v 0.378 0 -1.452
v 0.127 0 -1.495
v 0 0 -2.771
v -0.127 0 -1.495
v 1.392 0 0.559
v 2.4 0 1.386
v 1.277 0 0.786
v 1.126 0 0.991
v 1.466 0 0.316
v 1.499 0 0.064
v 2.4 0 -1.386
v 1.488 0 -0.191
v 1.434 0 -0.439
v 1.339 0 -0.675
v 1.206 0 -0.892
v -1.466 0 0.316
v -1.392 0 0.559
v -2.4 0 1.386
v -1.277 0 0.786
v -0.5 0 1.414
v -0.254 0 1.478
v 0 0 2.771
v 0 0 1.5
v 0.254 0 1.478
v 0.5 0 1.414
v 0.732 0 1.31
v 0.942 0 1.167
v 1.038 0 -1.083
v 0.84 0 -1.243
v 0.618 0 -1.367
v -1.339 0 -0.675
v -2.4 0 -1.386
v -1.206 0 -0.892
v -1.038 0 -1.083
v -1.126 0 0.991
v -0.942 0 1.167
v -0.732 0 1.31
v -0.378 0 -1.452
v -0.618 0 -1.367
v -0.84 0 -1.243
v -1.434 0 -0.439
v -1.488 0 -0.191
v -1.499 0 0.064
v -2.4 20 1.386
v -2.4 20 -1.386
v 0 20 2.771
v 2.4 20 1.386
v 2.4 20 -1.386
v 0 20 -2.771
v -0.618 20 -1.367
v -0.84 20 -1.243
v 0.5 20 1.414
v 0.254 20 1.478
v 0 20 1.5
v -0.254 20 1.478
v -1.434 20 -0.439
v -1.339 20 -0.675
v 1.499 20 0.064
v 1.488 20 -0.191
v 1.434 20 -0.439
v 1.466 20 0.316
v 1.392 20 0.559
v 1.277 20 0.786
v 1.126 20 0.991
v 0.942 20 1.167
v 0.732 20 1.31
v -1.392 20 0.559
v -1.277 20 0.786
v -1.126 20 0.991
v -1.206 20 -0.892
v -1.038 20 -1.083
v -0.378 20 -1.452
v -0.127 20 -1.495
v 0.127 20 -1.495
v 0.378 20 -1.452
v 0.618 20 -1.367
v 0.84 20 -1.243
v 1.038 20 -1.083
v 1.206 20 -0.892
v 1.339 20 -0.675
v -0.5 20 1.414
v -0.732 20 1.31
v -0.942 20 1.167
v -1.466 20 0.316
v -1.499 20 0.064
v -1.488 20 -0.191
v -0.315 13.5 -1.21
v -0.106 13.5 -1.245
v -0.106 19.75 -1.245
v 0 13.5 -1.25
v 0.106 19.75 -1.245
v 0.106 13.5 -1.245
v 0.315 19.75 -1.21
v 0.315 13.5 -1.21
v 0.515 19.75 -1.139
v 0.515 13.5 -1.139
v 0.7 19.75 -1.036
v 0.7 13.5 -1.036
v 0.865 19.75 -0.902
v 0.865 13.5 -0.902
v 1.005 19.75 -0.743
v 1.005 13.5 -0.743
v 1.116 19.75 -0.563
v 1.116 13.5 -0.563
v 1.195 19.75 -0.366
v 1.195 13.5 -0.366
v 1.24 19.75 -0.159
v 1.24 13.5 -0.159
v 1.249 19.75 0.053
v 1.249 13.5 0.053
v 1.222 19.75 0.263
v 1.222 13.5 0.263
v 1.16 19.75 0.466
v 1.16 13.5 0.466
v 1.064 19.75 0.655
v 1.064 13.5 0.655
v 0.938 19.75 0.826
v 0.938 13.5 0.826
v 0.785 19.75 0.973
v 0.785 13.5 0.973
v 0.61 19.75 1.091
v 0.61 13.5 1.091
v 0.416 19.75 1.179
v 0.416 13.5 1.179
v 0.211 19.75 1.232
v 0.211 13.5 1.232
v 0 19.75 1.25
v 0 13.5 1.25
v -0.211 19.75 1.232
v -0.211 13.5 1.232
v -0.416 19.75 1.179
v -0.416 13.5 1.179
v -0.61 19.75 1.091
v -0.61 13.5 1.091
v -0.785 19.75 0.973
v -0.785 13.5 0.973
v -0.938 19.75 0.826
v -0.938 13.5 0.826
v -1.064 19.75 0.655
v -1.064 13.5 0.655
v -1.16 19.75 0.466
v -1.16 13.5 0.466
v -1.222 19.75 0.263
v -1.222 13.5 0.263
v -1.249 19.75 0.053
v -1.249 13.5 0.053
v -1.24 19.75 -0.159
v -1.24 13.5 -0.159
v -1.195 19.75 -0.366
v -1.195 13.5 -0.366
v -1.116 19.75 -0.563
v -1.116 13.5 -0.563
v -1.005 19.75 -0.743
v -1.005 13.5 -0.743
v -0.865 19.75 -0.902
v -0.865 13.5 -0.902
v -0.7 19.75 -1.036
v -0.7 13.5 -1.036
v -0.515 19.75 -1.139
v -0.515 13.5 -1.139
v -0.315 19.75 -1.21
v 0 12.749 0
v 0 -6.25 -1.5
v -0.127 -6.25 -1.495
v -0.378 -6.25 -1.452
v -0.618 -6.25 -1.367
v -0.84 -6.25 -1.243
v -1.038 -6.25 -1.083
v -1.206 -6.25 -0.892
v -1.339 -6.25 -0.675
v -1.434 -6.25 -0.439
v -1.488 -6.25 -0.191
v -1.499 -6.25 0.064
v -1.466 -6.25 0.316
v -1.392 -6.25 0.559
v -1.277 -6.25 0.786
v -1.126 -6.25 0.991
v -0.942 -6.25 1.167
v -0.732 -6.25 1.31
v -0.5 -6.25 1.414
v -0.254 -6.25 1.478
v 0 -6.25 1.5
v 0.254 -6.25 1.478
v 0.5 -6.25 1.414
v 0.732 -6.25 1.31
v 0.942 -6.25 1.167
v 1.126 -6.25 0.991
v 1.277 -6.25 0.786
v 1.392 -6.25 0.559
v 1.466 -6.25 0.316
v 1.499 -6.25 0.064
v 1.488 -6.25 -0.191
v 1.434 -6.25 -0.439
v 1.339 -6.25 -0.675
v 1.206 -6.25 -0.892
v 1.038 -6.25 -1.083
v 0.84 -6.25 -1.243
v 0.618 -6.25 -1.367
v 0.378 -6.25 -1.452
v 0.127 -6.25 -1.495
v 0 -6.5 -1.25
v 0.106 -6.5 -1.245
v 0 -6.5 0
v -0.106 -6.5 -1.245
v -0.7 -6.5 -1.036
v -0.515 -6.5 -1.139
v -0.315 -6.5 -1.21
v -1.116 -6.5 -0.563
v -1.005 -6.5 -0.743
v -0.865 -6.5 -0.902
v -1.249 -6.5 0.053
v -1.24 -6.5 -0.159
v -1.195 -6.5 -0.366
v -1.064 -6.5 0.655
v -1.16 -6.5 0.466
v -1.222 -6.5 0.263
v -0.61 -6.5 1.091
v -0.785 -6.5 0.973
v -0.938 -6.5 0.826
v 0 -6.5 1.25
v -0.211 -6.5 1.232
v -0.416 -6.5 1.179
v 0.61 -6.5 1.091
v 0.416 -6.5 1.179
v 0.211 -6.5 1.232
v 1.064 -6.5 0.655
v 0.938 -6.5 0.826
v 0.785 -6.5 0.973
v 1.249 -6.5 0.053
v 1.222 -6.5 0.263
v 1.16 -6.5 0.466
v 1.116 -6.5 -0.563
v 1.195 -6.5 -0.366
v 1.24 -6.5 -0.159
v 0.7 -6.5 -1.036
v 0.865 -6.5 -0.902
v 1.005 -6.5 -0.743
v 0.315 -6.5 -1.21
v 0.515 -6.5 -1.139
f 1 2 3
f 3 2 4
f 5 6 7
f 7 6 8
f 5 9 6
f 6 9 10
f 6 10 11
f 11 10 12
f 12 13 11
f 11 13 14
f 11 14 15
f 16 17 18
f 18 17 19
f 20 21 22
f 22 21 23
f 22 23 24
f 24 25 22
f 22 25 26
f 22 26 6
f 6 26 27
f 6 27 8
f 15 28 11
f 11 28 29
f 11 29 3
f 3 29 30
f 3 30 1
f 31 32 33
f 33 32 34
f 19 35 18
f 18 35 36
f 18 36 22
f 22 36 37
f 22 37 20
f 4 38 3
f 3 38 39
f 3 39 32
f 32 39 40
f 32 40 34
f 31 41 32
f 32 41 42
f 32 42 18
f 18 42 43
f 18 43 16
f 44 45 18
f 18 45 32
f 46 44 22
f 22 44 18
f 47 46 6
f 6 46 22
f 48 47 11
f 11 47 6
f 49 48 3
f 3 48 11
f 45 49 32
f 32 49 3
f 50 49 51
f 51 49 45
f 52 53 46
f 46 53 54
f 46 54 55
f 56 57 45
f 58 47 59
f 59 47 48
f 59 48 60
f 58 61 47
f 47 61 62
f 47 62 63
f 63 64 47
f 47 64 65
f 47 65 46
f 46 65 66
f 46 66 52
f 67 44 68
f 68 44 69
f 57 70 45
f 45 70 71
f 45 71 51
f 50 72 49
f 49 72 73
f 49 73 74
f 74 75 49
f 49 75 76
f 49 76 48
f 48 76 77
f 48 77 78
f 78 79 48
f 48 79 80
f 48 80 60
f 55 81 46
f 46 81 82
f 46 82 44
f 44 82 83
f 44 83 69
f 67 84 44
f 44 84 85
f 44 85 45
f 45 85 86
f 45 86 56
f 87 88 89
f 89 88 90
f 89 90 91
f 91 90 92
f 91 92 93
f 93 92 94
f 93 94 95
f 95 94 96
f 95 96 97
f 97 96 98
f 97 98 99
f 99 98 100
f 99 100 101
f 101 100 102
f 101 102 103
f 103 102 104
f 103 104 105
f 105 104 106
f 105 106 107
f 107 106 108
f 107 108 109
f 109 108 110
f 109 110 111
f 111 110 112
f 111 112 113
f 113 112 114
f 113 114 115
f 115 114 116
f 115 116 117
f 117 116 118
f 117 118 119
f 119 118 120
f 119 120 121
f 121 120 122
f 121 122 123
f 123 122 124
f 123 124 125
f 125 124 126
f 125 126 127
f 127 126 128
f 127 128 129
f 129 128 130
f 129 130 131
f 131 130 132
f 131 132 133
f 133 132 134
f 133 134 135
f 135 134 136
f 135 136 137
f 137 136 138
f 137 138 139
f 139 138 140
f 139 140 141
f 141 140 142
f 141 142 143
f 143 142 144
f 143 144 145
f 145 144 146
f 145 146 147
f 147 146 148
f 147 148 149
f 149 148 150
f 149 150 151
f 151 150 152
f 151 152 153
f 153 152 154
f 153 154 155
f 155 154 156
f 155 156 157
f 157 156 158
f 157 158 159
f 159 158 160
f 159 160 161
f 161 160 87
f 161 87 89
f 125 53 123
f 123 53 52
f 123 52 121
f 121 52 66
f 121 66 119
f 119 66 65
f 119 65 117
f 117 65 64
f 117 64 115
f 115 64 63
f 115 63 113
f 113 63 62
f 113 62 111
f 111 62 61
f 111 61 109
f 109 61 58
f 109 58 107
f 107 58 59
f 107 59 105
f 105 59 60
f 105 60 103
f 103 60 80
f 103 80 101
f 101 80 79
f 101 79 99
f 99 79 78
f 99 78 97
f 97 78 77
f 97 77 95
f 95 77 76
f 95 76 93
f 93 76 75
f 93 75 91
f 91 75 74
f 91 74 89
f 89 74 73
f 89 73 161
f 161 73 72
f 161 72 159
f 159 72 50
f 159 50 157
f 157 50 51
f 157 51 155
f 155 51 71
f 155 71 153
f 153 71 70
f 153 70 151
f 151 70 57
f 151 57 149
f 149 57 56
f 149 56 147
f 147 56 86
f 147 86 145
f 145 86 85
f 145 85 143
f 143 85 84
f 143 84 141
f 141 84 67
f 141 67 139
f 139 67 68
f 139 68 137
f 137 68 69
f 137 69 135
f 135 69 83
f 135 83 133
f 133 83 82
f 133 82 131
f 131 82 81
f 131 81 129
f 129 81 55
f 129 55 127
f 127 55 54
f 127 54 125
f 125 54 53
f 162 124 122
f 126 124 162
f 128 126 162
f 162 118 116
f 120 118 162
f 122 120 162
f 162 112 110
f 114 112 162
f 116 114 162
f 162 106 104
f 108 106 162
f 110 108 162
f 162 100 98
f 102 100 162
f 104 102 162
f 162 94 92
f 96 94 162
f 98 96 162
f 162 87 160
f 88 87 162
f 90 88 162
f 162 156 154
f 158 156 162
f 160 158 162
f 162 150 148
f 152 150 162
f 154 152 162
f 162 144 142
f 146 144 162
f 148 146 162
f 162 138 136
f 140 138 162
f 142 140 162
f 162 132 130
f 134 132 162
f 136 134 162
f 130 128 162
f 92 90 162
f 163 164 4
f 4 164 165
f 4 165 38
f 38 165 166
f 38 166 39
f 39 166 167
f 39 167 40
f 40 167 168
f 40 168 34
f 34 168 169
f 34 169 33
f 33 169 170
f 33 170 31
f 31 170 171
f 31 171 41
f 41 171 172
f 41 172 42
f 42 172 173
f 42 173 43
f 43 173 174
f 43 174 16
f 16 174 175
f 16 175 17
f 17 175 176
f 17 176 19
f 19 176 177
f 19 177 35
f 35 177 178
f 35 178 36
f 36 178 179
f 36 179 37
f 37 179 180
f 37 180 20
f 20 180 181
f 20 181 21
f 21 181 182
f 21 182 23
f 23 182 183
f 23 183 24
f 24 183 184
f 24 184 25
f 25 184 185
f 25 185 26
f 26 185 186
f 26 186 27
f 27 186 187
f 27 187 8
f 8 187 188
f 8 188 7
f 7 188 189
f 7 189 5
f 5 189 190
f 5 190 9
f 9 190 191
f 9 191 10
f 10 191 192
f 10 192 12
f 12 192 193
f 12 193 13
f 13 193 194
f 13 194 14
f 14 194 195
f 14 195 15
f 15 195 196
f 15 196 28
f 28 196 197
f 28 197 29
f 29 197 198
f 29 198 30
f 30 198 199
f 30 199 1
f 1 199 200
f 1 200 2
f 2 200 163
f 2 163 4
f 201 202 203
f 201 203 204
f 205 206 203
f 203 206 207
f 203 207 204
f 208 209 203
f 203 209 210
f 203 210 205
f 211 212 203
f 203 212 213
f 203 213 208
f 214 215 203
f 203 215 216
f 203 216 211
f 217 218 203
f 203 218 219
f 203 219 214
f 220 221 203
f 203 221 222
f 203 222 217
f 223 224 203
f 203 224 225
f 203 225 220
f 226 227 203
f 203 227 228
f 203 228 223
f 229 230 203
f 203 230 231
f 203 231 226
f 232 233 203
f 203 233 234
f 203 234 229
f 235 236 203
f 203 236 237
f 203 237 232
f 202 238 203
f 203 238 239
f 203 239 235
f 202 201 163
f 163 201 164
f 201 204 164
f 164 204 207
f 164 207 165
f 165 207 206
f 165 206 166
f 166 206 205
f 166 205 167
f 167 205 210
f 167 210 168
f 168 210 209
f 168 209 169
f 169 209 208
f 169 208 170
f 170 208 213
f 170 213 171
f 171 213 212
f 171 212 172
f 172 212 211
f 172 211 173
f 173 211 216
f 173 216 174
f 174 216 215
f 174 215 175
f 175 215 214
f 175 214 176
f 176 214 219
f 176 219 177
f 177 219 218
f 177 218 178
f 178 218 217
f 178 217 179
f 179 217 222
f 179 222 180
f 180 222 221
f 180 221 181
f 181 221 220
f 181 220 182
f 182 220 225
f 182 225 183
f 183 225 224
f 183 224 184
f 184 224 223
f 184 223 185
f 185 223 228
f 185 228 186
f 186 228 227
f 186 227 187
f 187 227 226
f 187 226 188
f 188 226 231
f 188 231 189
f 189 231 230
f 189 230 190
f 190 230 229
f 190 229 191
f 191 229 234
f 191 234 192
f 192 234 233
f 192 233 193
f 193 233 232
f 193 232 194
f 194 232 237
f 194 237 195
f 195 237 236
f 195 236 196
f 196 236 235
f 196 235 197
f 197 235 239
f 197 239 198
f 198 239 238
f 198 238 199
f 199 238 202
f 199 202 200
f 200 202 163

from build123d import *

# Parameters (mm, degrees)
SPACER_DEPTH       = 20
HOLE_R             = 1.25
BLIND_HOLE_DEPTH   = 6.5
HOLE_CHAMFER_SIZE  = 0.25
SHAFT_R            = 1.5
MAIL_SHAFT_DEPTH   = 6.5
SHAFT_CHAMFER_SIZE = 0.25


with BuildPart() as part:
    # Profile → SPACER (new body)
    with BuildSketch(Plane(origin=(0, 0, 0), x_dir=(1, 0, 0), z_dir=(0, 1, 0))):
        Polygon((-2.4, -1.385640646), (0, -2.771281292), (2.4, -1.385640646), (2.4, 1.385640646), (0, 2.771281292), (-2.4, 1.385640646), align=None)
    extrude(amount=SPACER_DEPTH)

    # HOLE → BLIND_HOLE (cut)
    with BuildSketch(Plane(origin=(0, 20, 0), x_dir=(1, 0, 0), z_dir=(0, 1, 0))):
        with Locations(Location((0, 0, 0), (0, 0, 270))):
            Circle(HOLE_R)
    extrude(amount=-BLIND_HOLE_DEPTH, mode=Mode.SUBTRACT)

    # HOLE_Chamfer
    hole_chamfer_edges = [part.edges().sort_by_distance(p)[0] for p in [
        (0, 20, -1.25),
    ]]
    chamfer(hole_chamfer_edges, length=HOLE_CHAMFER_SIZE)

    # Sketch6 → DRILL_CUT (revolve, cut)
    with BuildSketch(Plane.XY, mode=Mode.PRIVATE) as drill_cut_sk:
        Polygon((0, 13.5), (-1.25, 13.5), (0, 12.748924226), align=None)
    revolve(drill_cut_sk.sketch.rotate(Axis((0, 12.748924226, 0), (0, 1, 0)), 90), axis=Axis((0, 12.748924226, 0), (0, 1, 0)), mode=Mode.SUBTRACT)

    # SHAFT → MAIL_SHAFT (add)
    with BuildSketch(Plane.XZ):
        with Locations(Location((0, 0, 0), (0, 0, 90))):
            Circle(SHAFT_R)
    extrude(amount=MAIL_SHAFT_DEPTH)

    # SHAFT_Chamfer
    shaft_chamfer_edges = [part.edges().sort_by_distance(p)[0] for p in [
        (0, -6.5, -1.5),
    ]]
    chamfer(shaft_chamfer_edges, length=SHAFT_CHAMFER_SIZE)


solid = part.part
